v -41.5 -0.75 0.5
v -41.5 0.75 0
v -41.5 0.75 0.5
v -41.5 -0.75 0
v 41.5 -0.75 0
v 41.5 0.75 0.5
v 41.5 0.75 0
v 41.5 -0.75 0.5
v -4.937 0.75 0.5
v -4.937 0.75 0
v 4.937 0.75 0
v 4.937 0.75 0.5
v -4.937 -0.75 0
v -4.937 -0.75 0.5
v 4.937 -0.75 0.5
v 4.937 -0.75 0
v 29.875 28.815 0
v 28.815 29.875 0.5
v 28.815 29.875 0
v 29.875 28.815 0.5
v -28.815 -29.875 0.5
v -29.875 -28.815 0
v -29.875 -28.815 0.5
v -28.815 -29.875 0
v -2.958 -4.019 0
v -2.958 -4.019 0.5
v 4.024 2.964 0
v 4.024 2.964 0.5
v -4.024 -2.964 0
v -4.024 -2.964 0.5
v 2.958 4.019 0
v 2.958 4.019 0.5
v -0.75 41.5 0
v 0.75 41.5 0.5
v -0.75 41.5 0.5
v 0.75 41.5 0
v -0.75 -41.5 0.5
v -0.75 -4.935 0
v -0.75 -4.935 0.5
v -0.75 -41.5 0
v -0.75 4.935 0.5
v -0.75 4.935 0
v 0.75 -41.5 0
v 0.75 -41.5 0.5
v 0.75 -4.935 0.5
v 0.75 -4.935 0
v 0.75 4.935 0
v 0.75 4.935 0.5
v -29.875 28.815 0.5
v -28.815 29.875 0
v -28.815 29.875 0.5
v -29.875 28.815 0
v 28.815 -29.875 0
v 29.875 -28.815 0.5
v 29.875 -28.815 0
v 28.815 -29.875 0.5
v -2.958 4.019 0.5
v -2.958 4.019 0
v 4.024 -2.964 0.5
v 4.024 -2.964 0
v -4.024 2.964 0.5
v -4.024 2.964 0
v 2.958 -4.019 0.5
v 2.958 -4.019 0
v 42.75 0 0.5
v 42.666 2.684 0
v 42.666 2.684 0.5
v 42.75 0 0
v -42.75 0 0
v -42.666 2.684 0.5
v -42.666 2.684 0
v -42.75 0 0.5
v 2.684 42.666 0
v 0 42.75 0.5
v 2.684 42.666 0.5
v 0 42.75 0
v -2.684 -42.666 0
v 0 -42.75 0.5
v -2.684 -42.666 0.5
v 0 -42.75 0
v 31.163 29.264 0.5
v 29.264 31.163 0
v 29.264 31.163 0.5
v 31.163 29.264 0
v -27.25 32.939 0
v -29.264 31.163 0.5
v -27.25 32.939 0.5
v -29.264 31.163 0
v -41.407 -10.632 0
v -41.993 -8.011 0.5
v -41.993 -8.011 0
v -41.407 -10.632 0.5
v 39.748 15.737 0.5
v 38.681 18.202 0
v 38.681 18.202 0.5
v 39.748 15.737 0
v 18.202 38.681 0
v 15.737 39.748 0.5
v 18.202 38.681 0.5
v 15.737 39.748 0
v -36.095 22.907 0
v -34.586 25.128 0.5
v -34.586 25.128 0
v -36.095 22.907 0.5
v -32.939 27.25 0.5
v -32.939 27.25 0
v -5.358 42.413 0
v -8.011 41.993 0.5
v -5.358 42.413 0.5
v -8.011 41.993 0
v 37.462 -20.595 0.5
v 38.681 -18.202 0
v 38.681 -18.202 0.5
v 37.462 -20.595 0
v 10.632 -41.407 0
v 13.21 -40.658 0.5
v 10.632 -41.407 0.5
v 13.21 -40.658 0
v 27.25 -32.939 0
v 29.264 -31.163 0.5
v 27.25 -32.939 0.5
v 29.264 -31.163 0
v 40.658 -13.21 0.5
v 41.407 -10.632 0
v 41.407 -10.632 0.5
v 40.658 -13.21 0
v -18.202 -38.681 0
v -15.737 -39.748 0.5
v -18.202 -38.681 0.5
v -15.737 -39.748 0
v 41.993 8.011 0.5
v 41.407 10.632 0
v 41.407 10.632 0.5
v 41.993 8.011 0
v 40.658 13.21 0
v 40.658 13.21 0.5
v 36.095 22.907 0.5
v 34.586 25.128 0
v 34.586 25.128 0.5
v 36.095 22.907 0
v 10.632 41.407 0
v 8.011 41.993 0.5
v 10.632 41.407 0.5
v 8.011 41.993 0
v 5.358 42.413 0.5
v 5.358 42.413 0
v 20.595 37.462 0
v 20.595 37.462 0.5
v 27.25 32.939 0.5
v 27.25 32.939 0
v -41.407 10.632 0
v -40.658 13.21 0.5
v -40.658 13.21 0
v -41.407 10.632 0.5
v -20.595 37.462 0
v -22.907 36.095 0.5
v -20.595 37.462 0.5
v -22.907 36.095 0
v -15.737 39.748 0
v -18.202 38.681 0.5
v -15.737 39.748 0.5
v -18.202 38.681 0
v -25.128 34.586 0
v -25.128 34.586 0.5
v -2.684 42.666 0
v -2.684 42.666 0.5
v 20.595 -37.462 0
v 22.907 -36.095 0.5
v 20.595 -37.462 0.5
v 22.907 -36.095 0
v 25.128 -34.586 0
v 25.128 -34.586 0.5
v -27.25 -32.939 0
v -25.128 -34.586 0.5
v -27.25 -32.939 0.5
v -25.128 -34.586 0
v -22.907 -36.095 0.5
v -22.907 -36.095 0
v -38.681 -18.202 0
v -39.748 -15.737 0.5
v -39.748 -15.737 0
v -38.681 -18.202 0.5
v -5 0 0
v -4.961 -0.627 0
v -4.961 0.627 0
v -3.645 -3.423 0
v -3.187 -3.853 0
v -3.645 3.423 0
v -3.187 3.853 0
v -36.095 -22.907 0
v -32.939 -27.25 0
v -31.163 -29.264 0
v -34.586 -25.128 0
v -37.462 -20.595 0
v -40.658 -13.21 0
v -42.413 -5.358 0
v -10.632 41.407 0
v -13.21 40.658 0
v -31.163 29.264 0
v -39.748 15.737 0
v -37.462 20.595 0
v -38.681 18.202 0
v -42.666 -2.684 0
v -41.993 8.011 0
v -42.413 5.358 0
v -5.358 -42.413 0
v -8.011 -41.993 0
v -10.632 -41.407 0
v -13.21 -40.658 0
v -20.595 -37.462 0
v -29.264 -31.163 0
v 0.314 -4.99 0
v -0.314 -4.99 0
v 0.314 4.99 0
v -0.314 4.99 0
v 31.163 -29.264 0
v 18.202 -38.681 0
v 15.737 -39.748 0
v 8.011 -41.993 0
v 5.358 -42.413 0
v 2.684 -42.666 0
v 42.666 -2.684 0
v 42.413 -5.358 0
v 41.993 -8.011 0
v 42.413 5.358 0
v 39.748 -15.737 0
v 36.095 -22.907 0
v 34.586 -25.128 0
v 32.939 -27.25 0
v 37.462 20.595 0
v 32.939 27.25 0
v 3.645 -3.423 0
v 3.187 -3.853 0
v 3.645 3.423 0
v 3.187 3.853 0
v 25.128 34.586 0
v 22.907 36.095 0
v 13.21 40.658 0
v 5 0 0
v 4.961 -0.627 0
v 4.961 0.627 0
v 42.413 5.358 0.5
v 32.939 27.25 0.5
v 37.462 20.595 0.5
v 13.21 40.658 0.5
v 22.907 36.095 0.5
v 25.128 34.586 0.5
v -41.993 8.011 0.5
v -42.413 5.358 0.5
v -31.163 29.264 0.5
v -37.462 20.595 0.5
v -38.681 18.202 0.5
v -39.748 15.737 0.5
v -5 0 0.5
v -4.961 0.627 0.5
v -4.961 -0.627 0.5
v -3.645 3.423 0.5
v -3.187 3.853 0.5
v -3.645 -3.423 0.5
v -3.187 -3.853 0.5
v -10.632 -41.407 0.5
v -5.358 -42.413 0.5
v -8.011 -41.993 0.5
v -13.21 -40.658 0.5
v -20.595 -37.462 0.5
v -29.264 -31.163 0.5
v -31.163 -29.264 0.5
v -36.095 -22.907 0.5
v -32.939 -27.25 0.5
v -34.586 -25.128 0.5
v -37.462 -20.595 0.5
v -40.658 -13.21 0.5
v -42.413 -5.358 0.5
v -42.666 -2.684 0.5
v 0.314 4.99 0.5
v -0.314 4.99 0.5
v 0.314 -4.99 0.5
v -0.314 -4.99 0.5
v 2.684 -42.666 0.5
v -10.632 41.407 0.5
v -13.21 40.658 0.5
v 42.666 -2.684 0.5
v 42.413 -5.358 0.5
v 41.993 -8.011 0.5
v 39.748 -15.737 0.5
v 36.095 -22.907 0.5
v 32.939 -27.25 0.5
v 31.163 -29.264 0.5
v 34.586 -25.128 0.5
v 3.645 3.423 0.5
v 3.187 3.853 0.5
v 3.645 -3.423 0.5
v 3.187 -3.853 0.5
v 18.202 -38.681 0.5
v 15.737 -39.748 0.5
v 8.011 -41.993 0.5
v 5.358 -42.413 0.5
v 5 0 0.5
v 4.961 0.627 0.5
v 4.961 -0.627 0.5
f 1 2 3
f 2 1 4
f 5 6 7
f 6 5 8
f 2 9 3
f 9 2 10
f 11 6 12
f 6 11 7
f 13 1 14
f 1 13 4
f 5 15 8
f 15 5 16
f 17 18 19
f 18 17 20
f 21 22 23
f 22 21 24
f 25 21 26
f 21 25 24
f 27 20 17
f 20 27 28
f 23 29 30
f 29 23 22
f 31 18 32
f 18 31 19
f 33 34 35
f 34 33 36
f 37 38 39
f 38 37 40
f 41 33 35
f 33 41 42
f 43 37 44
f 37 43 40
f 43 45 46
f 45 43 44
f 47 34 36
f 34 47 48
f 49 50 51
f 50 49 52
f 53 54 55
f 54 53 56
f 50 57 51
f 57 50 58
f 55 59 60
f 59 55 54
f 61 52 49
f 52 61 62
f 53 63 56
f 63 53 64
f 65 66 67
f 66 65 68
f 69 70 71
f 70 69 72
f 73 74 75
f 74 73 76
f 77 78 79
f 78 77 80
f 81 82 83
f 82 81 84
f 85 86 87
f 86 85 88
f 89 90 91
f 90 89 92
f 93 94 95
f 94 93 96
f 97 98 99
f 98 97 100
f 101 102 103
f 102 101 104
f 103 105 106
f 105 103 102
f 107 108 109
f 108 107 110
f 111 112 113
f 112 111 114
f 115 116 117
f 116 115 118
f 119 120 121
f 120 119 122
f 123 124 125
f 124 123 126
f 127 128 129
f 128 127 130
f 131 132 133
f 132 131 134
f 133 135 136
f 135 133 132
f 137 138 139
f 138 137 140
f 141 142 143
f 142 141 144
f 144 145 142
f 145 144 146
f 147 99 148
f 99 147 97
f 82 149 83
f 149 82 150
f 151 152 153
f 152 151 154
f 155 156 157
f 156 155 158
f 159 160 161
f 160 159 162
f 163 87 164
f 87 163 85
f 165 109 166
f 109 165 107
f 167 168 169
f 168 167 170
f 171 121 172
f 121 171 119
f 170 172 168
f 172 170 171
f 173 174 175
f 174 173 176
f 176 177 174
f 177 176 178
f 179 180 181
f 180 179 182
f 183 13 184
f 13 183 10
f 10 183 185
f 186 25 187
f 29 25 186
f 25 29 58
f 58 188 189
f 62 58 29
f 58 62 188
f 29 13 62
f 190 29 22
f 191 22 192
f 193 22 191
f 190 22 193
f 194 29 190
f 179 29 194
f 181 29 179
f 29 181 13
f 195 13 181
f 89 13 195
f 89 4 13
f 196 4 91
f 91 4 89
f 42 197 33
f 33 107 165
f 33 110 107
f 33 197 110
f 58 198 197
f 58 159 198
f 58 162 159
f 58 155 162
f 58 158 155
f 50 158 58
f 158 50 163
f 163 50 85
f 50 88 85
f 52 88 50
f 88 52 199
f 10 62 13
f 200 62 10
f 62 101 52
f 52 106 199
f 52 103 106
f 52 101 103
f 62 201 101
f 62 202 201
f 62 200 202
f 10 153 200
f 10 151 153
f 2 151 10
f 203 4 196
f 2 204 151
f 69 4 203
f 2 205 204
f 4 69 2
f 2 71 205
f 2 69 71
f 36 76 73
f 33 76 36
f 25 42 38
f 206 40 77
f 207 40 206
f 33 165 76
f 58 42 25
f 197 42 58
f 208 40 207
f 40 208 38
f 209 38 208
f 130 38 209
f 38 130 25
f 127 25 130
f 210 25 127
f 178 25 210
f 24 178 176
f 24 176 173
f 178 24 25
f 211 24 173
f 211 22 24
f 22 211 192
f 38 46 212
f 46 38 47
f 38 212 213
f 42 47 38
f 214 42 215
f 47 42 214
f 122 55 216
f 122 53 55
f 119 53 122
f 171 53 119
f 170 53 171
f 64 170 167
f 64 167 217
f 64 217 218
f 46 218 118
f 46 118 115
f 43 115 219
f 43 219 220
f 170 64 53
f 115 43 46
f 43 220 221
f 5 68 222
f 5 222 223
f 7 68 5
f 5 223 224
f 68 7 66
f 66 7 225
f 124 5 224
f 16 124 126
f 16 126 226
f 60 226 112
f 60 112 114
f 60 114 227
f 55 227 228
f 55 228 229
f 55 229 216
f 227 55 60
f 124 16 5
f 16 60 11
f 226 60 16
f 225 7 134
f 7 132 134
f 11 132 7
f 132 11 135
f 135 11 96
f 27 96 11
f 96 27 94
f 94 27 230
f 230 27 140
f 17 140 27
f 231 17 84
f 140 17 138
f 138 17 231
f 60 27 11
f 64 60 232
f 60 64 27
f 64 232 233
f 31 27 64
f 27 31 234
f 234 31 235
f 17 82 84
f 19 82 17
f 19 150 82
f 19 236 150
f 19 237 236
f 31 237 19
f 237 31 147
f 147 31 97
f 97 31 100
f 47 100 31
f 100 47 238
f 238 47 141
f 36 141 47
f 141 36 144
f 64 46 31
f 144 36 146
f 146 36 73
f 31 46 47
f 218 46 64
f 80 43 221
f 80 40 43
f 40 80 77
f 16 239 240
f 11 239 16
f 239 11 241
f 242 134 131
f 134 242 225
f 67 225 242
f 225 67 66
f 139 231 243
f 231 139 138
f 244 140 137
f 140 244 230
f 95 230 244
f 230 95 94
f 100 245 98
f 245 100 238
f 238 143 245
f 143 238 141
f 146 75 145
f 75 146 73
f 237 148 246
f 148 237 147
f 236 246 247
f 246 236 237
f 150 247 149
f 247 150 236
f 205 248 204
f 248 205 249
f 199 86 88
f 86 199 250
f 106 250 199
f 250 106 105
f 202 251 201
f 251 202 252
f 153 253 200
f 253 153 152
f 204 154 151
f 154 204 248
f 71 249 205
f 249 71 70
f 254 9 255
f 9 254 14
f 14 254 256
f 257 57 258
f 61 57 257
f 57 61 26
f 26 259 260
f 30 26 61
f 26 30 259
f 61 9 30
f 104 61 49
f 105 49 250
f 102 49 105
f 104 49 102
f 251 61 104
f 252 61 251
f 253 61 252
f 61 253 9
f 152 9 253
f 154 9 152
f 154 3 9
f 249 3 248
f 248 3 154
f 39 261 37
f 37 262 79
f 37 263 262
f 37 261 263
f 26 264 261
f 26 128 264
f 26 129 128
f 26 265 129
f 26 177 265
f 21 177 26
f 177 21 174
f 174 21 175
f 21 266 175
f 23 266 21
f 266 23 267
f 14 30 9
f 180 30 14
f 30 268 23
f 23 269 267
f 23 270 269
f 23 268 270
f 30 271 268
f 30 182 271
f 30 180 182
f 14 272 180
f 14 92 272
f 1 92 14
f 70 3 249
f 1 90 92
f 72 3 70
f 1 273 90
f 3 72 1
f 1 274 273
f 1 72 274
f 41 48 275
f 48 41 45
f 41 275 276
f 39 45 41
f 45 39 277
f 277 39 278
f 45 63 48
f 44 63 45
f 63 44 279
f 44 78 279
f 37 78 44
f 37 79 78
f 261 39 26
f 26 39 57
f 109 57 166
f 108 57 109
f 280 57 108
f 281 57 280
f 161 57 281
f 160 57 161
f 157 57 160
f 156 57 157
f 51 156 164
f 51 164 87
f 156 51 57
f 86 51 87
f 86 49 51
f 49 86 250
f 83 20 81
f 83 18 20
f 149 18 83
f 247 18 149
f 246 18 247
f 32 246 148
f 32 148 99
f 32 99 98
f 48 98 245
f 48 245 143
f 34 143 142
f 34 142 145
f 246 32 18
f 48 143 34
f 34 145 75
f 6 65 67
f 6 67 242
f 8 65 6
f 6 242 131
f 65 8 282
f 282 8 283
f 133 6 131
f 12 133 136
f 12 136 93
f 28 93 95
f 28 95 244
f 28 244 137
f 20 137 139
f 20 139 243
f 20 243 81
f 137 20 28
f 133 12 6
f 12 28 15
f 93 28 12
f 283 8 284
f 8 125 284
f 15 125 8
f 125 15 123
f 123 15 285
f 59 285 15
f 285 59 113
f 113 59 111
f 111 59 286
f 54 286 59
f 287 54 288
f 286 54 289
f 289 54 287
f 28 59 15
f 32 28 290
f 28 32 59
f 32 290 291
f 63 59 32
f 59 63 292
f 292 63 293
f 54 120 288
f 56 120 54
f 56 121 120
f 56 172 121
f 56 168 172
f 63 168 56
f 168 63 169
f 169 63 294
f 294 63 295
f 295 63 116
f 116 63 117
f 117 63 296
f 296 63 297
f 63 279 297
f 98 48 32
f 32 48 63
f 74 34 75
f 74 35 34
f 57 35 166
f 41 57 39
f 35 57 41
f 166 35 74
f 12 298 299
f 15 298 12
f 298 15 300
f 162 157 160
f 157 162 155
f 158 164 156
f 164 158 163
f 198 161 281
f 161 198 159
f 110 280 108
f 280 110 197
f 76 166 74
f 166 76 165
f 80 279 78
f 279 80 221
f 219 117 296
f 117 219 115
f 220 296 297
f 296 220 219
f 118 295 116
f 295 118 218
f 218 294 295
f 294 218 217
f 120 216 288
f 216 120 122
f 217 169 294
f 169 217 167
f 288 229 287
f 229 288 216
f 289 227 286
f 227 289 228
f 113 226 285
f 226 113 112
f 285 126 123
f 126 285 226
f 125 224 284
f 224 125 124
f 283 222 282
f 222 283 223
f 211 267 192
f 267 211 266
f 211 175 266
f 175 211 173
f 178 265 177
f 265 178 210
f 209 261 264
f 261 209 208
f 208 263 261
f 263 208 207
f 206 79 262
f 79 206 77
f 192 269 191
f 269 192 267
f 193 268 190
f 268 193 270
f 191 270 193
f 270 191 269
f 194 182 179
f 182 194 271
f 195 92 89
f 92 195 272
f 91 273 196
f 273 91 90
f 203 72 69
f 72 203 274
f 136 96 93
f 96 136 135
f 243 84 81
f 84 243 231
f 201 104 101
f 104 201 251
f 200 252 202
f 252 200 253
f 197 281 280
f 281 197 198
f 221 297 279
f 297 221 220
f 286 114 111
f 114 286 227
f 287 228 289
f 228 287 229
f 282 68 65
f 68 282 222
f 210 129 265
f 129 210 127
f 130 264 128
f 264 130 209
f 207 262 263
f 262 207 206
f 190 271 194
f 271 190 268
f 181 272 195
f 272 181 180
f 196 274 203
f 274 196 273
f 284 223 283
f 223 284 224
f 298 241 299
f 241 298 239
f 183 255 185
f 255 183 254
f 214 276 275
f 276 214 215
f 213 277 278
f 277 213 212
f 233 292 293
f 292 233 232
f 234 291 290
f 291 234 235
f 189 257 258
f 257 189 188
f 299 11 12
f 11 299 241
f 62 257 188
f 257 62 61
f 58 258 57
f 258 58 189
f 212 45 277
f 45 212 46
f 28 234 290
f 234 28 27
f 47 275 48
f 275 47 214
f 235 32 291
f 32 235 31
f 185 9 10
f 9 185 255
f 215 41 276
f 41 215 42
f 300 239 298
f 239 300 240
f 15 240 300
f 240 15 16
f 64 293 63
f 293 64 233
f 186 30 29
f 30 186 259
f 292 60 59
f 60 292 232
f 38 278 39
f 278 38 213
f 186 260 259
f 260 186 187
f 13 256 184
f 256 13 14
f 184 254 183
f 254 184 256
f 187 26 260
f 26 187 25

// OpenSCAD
//A stencil for marking up "Mile-Mirsa" agar plates
//OpenSCAD (http://www.openscad.org/) is required to
//generate .STL files from this script.

outer_diameter=85.5; //millimetres
inner_diameter=83; //millimetres
rotation=45; //degrees (try 60 for 6 sectors)

union(){
    difference(){
        cylinder(d=outer_diameter,h=.5,$fn=100);
        for (theta=[0:rotation:360])
            rotate(theta){
                cube([inner_diameter,1.5,5], center=true);
            }
    }
cylinder(d=10,h=0.5,$fn=50);
}
